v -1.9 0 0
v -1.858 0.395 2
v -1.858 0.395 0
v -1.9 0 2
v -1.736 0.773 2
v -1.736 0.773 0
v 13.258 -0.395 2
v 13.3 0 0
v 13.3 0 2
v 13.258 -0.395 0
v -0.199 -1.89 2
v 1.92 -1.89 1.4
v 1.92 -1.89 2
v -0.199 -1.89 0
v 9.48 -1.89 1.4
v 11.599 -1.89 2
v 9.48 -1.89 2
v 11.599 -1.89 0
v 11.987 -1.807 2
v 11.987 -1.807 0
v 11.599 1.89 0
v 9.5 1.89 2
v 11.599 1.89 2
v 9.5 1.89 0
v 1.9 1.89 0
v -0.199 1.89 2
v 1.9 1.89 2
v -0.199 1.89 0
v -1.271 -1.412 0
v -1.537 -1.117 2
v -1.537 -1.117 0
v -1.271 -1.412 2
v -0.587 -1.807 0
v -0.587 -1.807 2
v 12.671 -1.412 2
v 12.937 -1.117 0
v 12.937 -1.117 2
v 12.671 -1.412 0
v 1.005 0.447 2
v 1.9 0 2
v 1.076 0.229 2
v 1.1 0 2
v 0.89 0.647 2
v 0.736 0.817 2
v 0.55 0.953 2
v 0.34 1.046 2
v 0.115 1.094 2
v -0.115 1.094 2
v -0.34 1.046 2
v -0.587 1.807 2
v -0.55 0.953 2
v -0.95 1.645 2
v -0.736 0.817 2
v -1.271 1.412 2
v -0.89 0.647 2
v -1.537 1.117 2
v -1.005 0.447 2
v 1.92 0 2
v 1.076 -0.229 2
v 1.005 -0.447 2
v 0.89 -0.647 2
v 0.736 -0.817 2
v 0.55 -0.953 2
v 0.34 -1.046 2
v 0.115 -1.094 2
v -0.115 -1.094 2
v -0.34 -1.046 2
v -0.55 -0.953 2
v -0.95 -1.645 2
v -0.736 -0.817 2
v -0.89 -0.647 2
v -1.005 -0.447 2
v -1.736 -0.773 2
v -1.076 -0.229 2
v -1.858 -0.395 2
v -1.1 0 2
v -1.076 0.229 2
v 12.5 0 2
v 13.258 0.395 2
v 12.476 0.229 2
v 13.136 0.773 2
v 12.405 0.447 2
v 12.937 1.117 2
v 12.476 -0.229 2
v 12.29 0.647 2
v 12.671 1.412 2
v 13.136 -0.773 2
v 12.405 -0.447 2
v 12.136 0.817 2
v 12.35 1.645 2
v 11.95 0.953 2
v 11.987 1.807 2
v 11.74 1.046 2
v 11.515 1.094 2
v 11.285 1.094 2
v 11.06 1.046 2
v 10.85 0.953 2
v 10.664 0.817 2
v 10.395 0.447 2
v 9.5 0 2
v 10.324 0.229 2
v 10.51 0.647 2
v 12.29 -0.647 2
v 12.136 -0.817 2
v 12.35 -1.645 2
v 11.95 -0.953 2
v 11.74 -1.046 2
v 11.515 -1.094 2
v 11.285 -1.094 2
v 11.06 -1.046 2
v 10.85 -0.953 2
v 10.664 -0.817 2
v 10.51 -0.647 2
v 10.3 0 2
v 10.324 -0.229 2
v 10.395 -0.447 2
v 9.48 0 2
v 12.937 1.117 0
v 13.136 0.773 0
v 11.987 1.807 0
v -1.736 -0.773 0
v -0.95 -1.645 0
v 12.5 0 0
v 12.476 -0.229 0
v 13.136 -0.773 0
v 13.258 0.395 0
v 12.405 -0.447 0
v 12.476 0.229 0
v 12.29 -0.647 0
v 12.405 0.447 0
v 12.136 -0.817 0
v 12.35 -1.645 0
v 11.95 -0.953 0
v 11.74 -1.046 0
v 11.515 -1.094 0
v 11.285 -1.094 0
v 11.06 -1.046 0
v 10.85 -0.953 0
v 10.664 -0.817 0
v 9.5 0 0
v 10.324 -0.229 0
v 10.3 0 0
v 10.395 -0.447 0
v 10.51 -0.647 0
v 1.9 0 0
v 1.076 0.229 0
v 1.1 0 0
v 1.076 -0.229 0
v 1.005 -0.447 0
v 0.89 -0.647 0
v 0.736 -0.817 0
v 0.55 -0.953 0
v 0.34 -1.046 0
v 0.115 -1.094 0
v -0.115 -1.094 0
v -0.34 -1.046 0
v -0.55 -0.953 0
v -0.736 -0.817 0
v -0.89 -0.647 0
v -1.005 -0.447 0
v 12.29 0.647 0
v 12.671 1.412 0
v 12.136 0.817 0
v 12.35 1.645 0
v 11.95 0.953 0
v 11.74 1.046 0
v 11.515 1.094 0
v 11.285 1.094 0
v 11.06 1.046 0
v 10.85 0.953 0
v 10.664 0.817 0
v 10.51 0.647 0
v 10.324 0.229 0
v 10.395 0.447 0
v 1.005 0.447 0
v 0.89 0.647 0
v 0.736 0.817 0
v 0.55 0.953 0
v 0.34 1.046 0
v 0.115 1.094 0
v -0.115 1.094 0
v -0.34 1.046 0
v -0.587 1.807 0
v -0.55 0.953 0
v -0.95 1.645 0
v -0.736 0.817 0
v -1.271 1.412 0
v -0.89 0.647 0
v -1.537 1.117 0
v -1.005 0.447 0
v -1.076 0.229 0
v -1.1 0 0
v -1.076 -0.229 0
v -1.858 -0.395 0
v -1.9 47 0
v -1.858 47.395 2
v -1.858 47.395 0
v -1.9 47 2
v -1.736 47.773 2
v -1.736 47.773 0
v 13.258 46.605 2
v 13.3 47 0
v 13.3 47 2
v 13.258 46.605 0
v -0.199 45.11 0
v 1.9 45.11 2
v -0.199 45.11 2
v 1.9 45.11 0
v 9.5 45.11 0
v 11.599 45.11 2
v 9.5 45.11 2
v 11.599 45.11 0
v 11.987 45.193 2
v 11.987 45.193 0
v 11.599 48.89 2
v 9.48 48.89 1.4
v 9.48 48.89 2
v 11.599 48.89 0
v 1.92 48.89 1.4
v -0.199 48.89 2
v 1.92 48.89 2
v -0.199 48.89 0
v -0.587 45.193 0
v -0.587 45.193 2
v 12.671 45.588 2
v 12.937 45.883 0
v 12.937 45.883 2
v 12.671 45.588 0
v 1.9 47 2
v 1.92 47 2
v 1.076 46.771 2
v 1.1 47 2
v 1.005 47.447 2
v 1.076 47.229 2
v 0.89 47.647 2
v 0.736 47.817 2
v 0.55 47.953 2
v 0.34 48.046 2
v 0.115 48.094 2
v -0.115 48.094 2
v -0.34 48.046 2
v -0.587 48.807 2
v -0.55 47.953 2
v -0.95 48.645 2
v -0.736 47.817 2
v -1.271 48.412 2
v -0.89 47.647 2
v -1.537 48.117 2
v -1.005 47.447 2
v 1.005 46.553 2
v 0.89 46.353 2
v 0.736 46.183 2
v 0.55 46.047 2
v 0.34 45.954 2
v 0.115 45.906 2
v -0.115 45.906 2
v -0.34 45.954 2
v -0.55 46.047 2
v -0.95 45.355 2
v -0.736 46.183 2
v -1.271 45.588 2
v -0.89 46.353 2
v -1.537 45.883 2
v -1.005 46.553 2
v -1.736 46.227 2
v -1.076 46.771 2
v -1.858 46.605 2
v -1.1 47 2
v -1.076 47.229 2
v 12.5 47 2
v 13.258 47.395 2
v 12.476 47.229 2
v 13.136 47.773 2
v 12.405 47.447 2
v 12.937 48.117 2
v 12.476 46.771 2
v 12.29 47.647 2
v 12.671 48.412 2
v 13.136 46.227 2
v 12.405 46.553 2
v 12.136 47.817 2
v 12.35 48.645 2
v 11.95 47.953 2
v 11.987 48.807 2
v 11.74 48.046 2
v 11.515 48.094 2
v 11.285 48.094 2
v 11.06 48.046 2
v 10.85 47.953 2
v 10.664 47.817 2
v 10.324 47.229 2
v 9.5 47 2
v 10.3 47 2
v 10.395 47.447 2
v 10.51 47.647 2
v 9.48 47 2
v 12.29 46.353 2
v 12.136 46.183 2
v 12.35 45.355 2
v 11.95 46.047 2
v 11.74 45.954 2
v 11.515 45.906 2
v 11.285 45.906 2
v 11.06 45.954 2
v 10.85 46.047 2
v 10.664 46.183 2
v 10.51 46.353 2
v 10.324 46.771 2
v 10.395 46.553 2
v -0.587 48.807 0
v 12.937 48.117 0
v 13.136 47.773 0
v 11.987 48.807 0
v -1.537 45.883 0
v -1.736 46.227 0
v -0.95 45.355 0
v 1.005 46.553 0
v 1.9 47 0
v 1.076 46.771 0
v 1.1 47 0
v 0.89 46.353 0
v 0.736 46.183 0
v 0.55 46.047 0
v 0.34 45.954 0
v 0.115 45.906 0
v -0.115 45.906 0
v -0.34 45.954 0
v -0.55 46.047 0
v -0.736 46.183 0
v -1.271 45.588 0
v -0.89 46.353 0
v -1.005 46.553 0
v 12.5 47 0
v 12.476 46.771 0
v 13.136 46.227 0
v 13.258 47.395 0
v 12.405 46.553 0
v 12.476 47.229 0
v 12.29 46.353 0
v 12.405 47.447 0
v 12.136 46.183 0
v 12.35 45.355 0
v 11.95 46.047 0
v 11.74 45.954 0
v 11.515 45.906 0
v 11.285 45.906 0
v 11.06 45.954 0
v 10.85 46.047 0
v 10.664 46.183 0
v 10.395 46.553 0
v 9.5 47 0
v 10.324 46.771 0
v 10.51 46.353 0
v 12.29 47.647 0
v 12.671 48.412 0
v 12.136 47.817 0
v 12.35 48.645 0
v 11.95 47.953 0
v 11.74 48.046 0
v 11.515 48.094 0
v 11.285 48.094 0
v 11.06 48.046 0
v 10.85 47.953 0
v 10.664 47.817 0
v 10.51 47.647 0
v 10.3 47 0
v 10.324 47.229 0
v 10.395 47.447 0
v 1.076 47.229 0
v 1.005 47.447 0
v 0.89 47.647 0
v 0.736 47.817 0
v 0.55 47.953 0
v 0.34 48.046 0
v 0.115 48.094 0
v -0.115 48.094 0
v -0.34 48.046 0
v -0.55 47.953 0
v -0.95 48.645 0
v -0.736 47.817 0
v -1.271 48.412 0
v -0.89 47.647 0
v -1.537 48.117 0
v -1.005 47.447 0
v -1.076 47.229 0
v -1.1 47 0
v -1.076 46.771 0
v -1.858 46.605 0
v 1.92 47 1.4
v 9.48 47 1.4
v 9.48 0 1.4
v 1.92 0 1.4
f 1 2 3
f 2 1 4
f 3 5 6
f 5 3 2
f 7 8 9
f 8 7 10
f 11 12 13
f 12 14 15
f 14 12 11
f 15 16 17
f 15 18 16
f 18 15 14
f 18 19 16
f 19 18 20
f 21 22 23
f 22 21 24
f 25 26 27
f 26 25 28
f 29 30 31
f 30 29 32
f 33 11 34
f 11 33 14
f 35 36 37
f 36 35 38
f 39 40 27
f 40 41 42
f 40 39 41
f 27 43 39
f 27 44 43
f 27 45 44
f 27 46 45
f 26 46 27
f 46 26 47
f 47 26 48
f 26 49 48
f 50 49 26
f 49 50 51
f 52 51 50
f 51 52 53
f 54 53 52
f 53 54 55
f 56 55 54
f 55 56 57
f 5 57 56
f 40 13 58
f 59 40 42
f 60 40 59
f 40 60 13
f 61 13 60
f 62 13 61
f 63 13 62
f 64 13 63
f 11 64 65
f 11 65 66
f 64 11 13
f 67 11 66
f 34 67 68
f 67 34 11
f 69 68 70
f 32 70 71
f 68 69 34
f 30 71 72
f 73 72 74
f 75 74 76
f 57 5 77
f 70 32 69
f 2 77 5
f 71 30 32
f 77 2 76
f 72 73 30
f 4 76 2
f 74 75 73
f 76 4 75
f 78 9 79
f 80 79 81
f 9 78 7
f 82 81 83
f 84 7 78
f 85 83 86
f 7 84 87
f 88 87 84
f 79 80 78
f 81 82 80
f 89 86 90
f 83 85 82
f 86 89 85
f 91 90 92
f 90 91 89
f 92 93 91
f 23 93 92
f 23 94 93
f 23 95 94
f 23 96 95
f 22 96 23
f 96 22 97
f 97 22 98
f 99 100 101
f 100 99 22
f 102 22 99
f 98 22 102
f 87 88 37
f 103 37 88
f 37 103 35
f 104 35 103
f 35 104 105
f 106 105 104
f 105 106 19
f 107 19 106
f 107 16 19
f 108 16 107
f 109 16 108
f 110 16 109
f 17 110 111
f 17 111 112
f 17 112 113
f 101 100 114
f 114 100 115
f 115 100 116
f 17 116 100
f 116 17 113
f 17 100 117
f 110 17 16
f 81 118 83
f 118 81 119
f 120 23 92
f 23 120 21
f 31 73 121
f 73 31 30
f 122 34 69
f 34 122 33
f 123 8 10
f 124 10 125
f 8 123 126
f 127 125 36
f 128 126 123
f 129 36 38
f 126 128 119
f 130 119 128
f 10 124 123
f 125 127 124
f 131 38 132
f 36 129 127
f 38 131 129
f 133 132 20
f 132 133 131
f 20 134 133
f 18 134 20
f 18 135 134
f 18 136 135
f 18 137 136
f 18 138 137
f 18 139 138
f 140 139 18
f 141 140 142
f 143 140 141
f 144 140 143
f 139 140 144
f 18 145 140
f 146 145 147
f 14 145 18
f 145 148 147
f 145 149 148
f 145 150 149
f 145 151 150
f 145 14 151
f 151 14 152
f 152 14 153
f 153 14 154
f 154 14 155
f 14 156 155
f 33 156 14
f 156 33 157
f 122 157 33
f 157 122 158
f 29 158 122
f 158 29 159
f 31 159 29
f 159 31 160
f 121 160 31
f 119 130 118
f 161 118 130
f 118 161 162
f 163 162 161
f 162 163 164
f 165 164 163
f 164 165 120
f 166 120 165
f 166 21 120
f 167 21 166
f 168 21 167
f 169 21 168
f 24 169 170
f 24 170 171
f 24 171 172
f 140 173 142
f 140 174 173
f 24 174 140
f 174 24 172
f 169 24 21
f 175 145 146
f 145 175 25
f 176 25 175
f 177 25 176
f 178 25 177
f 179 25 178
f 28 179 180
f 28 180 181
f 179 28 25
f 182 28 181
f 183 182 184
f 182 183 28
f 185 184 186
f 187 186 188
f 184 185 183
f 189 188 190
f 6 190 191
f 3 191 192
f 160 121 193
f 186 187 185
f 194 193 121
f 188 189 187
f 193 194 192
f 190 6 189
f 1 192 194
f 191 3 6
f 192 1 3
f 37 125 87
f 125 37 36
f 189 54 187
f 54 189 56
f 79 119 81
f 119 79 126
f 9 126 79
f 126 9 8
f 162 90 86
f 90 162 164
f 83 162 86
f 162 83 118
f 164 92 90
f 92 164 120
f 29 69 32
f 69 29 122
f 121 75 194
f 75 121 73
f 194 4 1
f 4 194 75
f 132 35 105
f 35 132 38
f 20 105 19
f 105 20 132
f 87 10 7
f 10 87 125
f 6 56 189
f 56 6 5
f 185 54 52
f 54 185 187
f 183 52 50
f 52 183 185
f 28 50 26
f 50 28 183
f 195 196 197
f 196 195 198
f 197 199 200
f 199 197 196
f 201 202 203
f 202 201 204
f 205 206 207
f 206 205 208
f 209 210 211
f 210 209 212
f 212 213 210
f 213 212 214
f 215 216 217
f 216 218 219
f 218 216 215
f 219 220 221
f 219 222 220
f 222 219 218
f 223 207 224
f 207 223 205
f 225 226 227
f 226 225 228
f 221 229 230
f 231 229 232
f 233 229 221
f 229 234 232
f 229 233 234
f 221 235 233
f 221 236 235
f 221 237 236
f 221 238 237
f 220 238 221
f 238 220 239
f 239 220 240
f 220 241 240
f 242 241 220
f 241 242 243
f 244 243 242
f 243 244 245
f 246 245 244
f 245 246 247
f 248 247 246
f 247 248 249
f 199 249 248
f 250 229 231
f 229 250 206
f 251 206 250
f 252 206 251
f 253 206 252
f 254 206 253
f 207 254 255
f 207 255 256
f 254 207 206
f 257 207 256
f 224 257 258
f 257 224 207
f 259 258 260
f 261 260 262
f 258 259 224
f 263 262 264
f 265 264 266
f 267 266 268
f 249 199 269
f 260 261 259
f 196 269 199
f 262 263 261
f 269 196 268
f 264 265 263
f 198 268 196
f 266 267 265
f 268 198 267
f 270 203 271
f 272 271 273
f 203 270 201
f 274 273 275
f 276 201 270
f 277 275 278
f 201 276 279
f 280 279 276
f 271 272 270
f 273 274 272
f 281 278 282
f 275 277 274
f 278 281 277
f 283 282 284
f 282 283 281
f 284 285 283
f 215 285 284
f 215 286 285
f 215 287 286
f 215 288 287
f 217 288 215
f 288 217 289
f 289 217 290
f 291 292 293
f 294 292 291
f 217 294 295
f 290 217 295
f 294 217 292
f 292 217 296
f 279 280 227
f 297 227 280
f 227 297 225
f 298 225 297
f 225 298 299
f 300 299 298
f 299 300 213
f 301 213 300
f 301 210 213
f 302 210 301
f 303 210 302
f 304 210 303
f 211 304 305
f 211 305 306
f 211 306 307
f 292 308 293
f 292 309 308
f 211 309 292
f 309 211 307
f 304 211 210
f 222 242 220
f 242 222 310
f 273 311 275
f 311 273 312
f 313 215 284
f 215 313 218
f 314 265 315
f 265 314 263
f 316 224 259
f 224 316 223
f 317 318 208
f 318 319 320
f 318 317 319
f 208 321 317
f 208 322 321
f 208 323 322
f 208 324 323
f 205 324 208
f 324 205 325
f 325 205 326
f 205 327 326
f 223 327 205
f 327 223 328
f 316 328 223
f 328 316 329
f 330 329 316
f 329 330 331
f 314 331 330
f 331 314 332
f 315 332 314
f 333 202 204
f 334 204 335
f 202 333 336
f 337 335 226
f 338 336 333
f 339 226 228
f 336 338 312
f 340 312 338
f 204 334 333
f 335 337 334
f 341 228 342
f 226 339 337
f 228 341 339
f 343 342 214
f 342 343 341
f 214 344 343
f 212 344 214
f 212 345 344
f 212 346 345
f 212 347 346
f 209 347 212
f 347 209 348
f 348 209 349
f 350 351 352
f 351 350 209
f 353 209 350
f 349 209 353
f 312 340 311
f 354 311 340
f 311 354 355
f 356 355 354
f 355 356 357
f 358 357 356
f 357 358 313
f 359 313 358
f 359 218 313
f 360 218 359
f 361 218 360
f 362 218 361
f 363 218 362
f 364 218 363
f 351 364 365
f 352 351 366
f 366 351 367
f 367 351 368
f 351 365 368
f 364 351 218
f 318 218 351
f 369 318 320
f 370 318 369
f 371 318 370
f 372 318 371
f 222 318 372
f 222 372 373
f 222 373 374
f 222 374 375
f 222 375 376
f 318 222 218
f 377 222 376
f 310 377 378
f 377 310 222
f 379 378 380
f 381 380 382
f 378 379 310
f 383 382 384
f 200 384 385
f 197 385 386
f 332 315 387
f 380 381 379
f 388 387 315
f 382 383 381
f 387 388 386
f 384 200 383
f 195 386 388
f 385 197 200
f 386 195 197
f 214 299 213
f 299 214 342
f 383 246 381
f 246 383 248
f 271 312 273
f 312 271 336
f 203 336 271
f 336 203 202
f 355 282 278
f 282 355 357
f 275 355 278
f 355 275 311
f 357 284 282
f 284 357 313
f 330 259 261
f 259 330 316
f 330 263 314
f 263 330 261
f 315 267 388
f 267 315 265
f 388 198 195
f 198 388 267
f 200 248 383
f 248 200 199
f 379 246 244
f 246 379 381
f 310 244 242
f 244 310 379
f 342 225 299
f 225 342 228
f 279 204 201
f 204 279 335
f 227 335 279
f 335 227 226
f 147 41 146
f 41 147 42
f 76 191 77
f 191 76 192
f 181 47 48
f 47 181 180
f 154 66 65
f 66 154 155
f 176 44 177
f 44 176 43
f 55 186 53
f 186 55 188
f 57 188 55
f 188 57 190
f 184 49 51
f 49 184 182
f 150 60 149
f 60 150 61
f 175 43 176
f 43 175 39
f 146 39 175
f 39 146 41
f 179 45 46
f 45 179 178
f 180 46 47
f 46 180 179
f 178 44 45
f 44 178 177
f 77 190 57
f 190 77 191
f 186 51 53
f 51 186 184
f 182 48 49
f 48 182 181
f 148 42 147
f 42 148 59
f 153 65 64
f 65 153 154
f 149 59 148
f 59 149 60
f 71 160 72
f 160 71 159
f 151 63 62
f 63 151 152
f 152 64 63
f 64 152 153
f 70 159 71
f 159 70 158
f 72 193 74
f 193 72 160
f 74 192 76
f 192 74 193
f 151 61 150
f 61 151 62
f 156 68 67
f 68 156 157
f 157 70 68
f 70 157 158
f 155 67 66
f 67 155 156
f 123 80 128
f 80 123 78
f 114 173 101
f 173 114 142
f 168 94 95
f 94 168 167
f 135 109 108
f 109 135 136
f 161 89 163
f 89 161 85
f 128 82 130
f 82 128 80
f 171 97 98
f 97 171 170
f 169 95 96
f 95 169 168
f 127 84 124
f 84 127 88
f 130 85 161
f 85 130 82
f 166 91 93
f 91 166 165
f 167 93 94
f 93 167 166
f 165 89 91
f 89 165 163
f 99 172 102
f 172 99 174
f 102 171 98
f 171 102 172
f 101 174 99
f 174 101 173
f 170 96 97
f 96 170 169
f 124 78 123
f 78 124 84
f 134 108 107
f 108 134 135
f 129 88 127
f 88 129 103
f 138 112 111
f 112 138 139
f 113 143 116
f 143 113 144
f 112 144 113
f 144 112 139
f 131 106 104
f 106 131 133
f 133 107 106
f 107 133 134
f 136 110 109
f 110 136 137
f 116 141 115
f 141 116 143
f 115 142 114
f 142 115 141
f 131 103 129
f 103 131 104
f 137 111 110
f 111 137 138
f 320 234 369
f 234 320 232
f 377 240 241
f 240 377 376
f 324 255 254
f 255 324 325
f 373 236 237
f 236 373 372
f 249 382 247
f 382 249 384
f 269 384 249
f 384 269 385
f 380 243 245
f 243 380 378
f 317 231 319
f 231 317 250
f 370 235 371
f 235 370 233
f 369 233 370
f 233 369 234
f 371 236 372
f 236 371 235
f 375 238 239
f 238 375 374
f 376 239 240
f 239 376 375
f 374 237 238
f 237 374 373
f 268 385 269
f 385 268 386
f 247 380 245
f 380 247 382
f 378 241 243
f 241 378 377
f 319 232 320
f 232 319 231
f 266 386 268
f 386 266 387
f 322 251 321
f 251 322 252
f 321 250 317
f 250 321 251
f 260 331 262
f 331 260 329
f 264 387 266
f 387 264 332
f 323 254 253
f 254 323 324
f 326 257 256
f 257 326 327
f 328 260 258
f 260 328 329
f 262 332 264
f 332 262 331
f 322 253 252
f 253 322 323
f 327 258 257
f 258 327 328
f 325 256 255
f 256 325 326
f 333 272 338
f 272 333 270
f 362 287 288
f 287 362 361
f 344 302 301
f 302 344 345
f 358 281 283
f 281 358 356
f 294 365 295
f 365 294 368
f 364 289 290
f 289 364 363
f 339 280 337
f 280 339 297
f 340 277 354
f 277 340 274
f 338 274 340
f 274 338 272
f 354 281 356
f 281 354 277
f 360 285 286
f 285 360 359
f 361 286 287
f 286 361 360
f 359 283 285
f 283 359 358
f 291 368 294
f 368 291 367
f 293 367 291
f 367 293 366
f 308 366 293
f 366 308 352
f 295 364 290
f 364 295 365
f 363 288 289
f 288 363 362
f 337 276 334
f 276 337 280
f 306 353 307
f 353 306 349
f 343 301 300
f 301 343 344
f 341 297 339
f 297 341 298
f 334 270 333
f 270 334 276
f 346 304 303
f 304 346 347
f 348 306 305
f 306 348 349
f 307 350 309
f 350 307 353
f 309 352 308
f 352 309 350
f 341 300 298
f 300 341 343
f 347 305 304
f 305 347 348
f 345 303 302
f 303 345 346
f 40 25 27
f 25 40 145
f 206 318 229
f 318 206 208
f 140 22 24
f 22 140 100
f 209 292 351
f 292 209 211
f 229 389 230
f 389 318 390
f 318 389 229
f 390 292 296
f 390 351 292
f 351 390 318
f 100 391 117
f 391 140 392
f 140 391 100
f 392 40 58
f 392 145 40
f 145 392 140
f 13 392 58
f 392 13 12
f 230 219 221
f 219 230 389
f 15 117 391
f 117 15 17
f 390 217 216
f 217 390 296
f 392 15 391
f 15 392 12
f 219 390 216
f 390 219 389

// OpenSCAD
    difference() {
        union() {
            hull() {
                translate([0, 0, 0]) cylinder(h=2, r=3.8/2,  center=false, $fn=30); // pico washers
                translate([11.4, 0, 0]) cylinder(h=2, r=3.8/2,  center=false, $fn=30);
            }
            hull() {
                translate([0, 0+47, 0]) cylinder(h=2, r=3.8/2,  center=false, $fn=30);
                translate([11.4, 0+47, 0]) cylinder(h=2, r=3.8/2,  center=false, $fn=30);
            }
            
        }
        translate([0, 0, -1]) cylinder(h=30, r=2.2/2, center=false, $fn=30); // holes mount pico
        translate([11.4, 0, -1]) cylinder(h=30, r=2.2/2, center=false, $fn=30);
        translate([0, 0+47, -1]) cylinder(h=30, r=2.2/2, center=false, $fn=30);
        translate([11.4, 0+47, -1]) cylinder(h=30, r=2.2/2, center=false, $fn=30);
        translate([3.8/2, 0, -1])cube([11.4-3.8, 47, 4]);
        translate([3.8/2+0.02, -2.5, 1.4])cube([11.4-3.8-0.04, 47+6, 4]);
    }
